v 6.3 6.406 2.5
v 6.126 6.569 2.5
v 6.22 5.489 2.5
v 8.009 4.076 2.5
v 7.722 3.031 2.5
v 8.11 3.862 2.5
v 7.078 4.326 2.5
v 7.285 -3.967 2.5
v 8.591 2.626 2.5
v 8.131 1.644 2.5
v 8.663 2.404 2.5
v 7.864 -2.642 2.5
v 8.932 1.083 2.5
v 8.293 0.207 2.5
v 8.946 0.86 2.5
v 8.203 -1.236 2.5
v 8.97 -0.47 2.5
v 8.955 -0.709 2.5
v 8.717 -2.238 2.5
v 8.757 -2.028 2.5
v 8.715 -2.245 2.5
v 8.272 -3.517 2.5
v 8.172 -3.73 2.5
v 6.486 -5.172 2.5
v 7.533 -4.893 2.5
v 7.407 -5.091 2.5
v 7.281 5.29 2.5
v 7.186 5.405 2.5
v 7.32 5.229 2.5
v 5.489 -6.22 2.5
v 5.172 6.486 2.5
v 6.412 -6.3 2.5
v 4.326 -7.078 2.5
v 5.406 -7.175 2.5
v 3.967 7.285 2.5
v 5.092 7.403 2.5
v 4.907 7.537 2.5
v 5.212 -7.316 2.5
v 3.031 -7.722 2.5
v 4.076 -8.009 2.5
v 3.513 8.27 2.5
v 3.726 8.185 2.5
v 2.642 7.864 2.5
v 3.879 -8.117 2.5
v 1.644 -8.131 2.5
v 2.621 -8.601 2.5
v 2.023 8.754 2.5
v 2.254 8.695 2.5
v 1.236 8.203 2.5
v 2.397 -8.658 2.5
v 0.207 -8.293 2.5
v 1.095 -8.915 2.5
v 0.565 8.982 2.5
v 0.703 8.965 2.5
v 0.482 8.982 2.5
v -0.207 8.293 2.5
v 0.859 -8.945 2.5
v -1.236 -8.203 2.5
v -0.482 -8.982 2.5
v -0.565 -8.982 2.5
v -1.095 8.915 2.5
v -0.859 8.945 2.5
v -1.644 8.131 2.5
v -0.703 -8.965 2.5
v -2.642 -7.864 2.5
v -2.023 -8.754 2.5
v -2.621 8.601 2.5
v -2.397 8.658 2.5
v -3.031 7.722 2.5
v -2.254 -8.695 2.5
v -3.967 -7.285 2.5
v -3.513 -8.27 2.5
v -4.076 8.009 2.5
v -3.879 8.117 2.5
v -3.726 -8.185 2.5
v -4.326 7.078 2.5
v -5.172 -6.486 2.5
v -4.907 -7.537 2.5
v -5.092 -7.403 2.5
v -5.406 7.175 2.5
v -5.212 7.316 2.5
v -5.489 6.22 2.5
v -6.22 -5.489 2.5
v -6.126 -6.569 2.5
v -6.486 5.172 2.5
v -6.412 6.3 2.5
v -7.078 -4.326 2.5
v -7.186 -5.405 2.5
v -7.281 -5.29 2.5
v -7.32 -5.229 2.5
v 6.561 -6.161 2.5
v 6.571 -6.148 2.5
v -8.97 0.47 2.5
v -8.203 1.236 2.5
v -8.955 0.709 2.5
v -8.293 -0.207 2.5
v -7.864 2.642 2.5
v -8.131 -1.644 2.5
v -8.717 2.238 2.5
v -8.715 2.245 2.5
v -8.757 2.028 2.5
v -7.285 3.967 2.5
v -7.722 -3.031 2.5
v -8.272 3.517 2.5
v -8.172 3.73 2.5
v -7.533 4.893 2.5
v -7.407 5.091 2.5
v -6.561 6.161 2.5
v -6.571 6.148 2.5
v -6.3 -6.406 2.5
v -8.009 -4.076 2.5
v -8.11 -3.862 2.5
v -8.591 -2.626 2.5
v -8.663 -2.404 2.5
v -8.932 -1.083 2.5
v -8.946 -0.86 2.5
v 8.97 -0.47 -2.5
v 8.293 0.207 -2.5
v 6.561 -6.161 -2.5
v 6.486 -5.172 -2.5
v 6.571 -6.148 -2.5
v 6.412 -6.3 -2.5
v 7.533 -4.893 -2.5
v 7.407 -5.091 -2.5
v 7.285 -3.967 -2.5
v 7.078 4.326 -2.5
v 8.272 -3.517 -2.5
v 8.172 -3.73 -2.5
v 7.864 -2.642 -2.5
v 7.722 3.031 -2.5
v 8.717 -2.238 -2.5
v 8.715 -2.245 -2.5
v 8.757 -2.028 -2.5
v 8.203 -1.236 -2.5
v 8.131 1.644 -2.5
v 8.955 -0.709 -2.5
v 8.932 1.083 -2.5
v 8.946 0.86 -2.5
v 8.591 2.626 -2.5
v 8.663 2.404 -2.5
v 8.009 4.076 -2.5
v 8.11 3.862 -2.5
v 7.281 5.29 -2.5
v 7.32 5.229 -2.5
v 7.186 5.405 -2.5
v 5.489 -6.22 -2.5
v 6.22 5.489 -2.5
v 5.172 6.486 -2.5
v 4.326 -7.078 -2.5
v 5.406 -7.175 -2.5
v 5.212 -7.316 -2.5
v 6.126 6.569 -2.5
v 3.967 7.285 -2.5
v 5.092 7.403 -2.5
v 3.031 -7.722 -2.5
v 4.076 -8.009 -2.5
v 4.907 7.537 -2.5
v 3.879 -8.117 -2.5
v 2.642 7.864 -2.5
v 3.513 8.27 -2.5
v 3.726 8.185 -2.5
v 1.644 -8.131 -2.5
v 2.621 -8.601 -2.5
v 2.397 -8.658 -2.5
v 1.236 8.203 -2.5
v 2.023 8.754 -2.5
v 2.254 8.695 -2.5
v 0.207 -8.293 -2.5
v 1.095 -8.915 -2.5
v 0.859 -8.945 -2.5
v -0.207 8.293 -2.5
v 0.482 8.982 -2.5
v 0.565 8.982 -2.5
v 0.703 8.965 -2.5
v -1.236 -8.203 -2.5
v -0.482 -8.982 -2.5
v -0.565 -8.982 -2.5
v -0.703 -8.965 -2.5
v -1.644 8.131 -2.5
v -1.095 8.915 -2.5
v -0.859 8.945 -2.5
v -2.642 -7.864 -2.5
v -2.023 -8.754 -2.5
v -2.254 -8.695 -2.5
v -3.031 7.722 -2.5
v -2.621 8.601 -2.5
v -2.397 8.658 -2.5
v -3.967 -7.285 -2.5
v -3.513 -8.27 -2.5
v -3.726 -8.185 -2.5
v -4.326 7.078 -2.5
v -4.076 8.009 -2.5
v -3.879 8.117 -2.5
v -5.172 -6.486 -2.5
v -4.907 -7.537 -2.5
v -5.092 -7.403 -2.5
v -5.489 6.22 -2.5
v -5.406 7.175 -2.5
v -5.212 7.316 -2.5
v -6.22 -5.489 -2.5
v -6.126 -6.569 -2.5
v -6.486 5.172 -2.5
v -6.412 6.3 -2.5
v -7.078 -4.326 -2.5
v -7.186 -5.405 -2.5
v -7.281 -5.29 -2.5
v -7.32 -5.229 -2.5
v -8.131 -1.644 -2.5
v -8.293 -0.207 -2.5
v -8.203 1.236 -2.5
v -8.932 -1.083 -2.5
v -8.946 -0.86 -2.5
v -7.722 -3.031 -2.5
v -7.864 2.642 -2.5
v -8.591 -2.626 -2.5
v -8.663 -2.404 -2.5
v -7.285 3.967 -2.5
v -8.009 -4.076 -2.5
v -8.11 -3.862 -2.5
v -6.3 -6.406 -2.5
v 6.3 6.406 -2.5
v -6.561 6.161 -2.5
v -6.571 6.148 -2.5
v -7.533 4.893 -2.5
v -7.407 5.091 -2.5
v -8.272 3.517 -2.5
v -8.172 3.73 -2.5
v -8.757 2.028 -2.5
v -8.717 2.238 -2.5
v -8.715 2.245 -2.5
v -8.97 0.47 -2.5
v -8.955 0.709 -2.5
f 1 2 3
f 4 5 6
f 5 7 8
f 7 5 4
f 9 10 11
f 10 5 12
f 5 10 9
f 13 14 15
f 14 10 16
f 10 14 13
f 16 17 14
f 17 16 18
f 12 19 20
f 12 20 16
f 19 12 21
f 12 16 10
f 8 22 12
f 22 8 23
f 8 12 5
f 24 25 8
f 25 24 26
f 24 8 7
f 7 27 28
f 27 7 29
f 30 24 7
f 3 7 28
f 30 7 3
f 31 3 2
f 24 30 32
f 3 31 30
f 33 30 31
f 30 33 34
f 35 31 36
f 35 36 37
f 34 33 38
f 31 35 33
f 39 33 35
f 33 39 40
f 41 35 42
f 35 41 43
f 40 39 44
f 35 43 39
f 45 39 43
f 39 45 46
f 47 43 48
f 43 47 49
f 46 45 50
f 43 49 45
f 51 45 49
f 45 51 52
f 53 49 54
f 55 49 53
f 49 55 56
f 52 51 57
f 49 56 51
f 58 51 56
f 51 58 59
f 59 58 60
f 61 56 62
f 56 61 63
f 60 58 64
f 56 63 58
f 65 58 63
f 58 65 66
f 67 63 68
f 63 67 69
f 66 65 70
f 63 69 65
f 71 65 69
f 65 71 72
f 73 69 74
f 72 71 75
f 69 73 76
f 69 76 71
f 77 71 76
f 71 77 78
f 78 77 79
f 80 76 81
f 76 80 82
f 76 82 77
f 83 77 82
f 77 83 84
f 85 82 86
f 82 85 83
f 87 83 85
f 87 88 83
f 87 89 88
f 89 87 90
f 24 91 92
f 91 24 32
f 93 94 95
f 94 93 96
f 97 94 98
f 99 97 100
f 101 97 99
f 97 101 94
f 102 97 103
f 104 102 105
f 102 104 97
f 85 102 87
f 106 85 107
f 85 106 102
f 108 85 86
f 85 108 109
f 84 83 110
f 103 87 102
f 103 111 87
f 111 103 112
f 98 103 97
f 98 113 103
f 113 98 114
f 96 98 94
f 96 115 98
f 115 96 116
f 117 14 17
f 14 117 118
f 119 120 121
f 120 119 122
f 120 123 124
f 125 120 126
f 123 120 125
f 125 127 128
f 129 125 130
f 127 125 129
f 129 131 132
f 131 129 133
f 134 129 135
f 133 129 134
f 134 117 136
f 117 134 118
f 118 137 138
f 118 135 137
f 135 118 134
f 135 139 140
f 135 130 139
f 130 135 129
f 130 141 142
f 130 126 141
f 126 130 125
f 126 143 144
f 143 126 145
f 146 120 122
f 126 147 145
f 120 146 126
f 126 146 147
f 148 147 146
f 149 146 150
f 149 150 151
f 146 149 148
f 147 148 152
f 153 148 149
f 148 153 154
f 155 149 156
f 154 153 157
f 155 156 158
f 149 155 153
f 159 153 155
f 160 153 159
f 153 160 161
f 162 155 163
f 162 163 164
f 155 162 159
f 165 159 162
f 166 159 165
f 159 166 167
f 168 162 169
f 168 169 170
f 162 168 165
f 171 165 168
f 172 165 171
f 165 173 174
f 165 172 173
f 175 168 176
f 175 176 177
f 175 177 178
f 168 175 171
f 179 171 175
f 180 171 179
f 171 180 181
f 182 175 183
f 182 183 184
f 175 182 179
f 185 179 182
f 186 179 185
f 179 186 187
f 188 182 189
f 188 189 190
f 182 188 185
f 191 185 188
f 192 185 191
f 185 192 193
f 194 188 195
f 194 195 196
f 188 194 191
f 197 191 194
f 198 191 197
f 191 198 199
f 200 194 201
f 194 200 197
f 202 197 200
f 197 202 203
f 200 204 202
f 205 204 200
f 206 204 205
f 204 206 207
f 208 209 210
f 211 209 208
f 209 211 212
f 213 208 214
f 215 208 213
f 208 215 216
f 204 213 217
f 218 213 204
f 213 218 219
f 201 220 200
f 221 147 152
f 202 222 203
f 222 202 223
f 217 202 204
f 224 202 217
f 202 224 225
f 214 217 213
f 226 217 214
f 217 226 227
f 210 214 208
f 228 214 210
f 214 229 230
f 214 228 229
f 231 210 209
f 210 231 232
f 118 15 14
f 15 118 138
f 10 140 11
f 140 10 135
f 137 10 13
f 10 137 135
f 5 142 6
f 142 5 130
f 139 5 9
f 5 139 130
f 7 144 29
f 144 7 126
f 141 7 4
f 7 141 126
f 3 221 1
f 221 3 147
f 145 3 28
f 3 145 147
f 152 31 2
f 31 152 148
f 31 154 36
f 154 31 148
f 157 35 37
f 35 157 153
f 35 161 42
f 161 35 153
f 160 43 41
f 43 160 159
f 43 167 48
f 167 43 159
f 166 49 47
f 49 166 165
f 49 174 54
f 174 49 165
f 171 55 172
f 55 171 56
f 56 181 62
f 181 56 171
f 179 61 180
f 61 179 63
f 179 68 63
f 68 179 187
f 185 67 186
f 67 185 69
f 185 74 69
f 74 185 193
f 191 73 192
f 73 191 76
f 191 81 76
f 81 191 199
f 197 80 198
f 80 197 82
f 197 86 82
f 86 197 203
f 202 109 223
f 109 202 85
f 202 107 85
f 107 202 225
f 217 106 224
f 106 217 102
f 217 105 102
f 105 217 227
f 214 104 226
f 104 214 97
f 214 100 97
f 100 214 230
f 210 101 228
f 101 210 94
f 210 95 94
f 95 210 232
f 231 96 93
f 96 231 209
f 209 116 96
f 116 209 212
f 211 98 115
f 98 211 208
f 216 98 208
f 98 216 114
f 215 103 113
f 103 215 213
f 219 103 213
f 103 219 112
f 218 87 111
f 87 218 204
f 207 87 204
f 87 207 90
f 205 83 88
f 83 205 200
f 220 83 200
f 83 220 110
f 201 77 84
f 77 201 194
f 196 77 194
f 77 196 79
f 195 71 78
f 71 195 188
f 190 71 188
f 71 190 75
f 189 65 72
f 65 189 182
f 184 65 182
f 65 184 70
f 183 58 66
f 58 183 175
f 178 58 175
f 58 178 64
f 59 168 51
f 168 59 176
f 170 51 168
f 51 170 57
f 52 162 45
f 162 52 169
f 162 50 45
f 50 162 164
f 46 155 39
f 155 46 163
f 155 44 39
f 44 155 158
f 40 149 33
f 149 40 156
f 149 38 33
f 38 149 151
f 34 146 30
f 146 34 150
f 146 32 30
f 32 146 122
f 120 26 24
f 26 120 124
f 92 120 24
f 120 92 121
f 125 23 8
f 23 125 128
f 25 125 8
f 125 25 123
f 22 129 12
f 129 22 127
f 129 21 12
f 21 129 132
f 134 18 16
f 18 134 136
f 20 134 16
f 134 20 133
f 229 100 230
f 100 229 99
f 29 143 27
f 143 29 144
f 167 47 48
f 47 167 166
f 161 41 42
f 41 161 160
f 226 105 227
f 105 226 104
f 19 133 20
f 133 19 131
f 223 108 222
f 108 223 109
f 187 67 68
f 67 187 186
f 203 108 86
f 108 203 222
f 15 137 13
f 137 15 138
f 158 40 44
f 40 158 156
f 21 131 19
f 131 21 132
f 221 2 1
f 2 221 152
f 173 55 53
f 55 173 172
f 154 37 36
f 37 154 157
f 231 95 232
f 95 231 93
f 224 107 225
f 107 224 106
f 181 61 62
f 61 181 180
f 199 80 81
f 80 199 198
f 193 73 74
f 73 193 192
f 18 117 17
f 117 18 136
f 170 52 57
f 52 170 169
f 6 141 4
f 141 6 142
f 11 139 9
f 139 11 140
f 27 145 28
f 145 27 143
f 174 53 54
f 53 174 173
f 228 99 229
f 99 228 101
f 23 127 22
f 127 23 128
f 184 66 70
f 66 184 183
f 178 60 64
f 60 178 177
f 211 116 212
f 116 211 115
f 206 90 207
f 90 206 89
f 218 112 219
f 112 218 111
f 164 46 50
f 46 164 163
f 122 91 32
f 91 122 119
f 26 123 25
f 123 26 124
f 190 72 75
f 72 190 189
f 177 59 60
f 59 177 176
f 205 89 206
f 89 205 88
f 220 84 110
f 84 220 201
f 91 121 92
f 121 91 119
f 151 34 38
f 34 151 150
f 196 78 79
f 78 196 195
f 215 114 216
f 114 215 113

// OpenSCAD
$fn = 50;


difference() {
	union() {
		translate(v = [0, 0, -2.5000000000]) {
			cylinder(h = 5, r = 9.0000000000);
		}
	}
	union() {
		#rotate(a = [0, 0, 0.0000000000]) {
			translate(v = [9.5000000000, 0, 0]) {
				translate(v = [-0.5000000000, -0.5000000000, -2.5000000000]) {
					rotate(a = [0, 0, 45]) {
						cube(size = [1, 1, 5]);
					}
				}
			}
		}
		#rotate(a = [0, 0, 10.0000000000]) {
			translate(v = [9.5000000000, 0, 0]) {
				translate(v = [-0.5000000000, -0.5000000000, -2.5000000000]) {
					rotate(a = [0, 0, 45]) {
						cube(size = [1, 1, 5]);
					}
				}
			}
		}
		#rotate(a = [0, 0, 20.0000000000]) {
			translate(v = [9.5000000000, 0, 0]) {
				translate(v = [-0.5000000000, -0.5000000000, -2.5000000000]) {
					rotate(a = [0, 0, 45]) {
						cube(size = [1, 1, 5]);
					}
				}
			}
		}
		#rotate(a = [0, 0, 30.0000000000]) {
			translate(v = [9.5000000000, 0, 0]) {
				translate(v = [-0.5000000000, -0.5000000000, -2.5000000000]) {
					rotate(a = [0, 0, 45]) {
						cube(size = [1, 1, 5]);
					}
				}
			}
		}
		#rotate(a = [0, 0, 40.0000000000]) {
			translate(v = [9.5000000000, 0, 0]) {
				translate(v = [-0.5000000000, -0.5000000000, -2.5000000000]) {
					rotate(a = [0, 0, 45]) {
						cube(size = [1, 1, 5]);
					}
				}
			}
		}
		#rotate(a = [0, 0, 50.0000000000]) {
			translate(v = [9.5000000000, 0, 0]) {
				translate(v = [-0.5000000000, -0.5000000000, -2.5000000000]) {
					rotate(a = [0, 0, 45]) {
						cube(size = [1, 1, 5]);
					}
				}
			}
		}
		#rotate(a = [0, 0, 60.0000000000]) {
			translate(v = [9.5000000000, 0, 0]) {
				translate(v = [-0.5000000000, -0.5000000000, -2.5000000000]) {
					rotate(a = [0, 0, 45]) {
						cube(size = [1, 1, 5]);
					}
				}
			}
		}
		#rotate(a = [0, 0, 70.0000000000]) {
			translate(v = [9.5000000000, 0, 0]) {
				translate(v = [-0.5000000000, -0.5000000000, -2.5000000000]) {
					rotate(a = [0, 0, 45]) {
						cube(size = [1, 1, 5]);
					}
				}
			}
		}
		#rotate(a = [0, 0, 80.0000000000]) {
			translate(v = [9.5000000000, 0, 0]) {
				translate(v = [-0.5000000000, -0.5000000000, -2.5000000000]) {
					rotate(a = [0, 0, 45]) {
						cube(size = [1, 1, 5]);
					}
				}
			}
		}
		#rotate(a = [0, 0, 90.0000000000]) {
			translate(v = [9.5000000000, 0, 0]) {
				translate(v = [-0.5000000000, -0.5000000000, -2.5000000000]) {
					rotate(a = [0, 0, 45]) {
						cube(size = [1, 1, 5]);
					}
				}
			}
		}
		#rotate(a = [0, 0, 100.0000000000]) {
			translate(v = [9.5000000000, 0, 0]) {
				translate(v = [-0.5000000000, -0.5000000000, -2.5000000000]) {
					rotate(a = [0, 0, 45]) {
						cube(size = [1, 1, 5]);
					}
				}
			}
		}
		#rotate(a = [0, 0, 110.0000000000]) {
			translate(v = [9.5000000000, 0, 0]) {
				translate(v = [-0.5000000000, -0.5000000000, -2.5000000000]) {
					rotate(a = [0, 0, 45]) {
						cube(size = [1, 1, 5]);
					}
				}
			}
		}
		#rotate(a = [0, 0, 120.0000000000]) {
			translate(v = [9.5000000000, 0, 0]) {
				translate(v = [-0.5000000000, -0.5000000000, -2.5000000000]) {
					rotate(a = [0, 0, 45]) {
						cube(size = [1, 1, 5]);
					}
				}
			}
		}
		#rotate(a = [0, 0, 130.0000000000]) {
			translate(v = [9.5000000000, 0, 0]) {
				translate(v = [-0.5000000000, -0.5000000000, -2.5000000000]) {
					rotate(a = [0, 0, 45]) {
						cube(size = [1, 1, 5]);
					}
				}
			}
		}
		#rotate(a = [0, 0, 140.0000000000]) {
			translate(v = [9.5000000000, 0, 0]) {
				translate(v = [-0.5000000000, -0.5000000000, -2.5000000000]) {
					rotate(a = [0, 0, 45]) {
						cube(size = [1, 1, 5]);
					}
				}
			}
		}
		#rotate(a = [0, 0, 150.0000000000]) {
			translate(v = [9.5000000000, 0, 0]) {
				translate(v = [-0.5000000000, -0.5000000000, -2.5000000000]) {
					rotate(a = [0, 0, 45]) {
						cube(size = [1, 1, 5]);
					}
				}
			}
		}
		#rotate(a = [0, 0, 160.0000000000]) {
			translate(v = [9.5000000000, 0, 0]) {
				translate(v = [-0.5000000000, -0.5000000000, -2.5000000000]) {
					rotate(a = [0, 0, 45]) {
						cube(size = [1, 1, 5]);
					}
				}
			}
		}
		#rotate(a = [0, 0, 170.0000000000]) {
			translate(v = [9.5000000000, 0, 0]) {
				translate(v = [-0.5000000000, -0.5000000000, -2.5000000000]) {
					rotate(a = [0, 0, 45]) {
						cube(size = [1, 1, 5]);
					}
				}
			}
		}
		#rotate(a = [0, 0, 180.0000000000]) {
			translate(v = [9.5000000000, 0, 0]) {
				translate(v = [-0.5000000000, -0.5000000000, -2.5000000000]) {
					rotate(a = [0, 0, 45]) {
						cube(size = [1, 1, 5]);
					}
				}
			}
		}
		#rotate(a = [0, 0, 190.0000000000]) {
			translate(v = [9.5000000000, 0, 0]) {
				translate(v = [-0.5000000000, -0.5000000000, -2.5000000000]) {
					rotate(a = [0, 0, 45]) {
						cube(size = [1, 1, 5]);
					}
				}
			}
		}
		#rotate(a = [0, 0, 200.0000000000]) {
			translate(v = [9.5000000000, 0, 0]) {
				translate(v = [-0.5000000000, -0.5000000000, -2.5000000000]) {
					rotate(a = [0, 0, 45]) {
						cube(size = [1, 1, 5]);
					}
				}
			}
		}
		#rotate(a = [0, 0, 210.0000000000]) {
			translate(v = [9.5000000000, 0, 0]) {
				translate(v = [-0.5000000000, -0.5000000000, -2.5000000000]) {
					rotate(a = [0, 0, 45]) {
						cube(size = [1, 1, 5]);
					}
				}
			}
		}
		#rotate(a = [0, 0, 220.0000000000]) {
			translate(v = [9.5000000000, 0, 0]) {
				translate(v = [-0.5000000000, -0.5000000000, -2.5000000000]) {
					rotate(a = [0, 0, 45]) {
						cube(size = [1, 1, 5]);
					}
				}
			}
		}
		#rotate(a = [0, 0, 230.0000000000]) {
			translate(v = [9.5000000000, 0, 0]) {
				translate(v = [-0.5000000000, -0.5000000000, -2.5000000000]) {
					rotate(a = [0, 0, 45]) {
						cube(size = [1, 1, 5]);
					}
				}
			}
		}
		#rotate(a = [0, 0, 240.0000000000]) {
			translate(v = [9.5000000000, 0, 0]) {
				translate(v = [-0.5000000000, -0.5000000000, -2.5000000000]) {
					rotate(a = [0, 0, 45]) {
						cube(size = [1, 1, 5]);
					}
				}
			}
		}
		#rotate(a = [0, 0, 250.0000000000]) {
			translate(v = [9.5000000000, 0, 0]) {
				translate(v = [-0.5000000000, -0.5000000000, -2.5000000000]) {
					rotate(a = [0, 0, 45]) {
						cube(size = [1, 1, 5]);
					}
				}
			}
		}
		#rotate(a = [0, 0, 260.0000000000]) {
			translate(v = [9.5000000000, 0, 0]) {
				translate(v = [-0.5000000000, -0.5000000000, -2.5000000000]) {
					rotate(a = [0, 0, 45]) {
						cube(size = [1, 1, 5]);
					}
				}
			}
		}
		#rotate(a = [0, 0, 270.0000000000]) {
			translate(v = [9.5000000000, 0, 0]) {
				translate(v = [-0.5000000000, -0.5000000000, -2.5000000000]) {
					rotate(a = [0, 0, 45]) {
						cube(size = [1, 1, 5]);
					}
				}
			}
		}
		#rotate(a = [0, 0, 280.0000000000]) {
			translate(v = [9.5000000000, 0, 0]) {
				translate(v = [-0.5000000000, -0.5000000000, -2.5000000000]) {
					rotate(a = [0, 0, 45]) {
						cube(size = [1, 1, 5]);
					}
				}
			}
		}
		#rotate(a = [0, 0, 290.0000000000]) {
			translate(v = [9.5000000000, 0, 0]) {
				translate(v = [-0.5000000000, -0.5000000000, -2.5000000000]) {
					rotate(a = [0, 0, 45]) {
						cube(size = [1, 1, 5]);
					}
				}
			}
		}
		#rotate(a = [0, 0, 300.0000000000]) {
			translate(v = [9.5000000000, 0, 0]) {
				translate(v = [-0.5000000000, -0.5000000000, -2.5000000000]) {
					rotate(a = [0, 0, 45]) {
						cube(size = [1, 1, 5]);
					}
				}
			}
		}
		#rotate(a = [0, 0, 310.0000000000]) {
			translate(v = [9.5000000000, 0, 0]) {
				translate(v = [-0.5000000000, -0.5000000000, -2.5000000000]) {
					rotate(a = [0, 0, 45]) {
						cube(size = [1, 1, 5]);
					}
				}
			}
		}
		#rotate(a = [0, 0, 320.0000000000]) {
			translate(v = [9.5000000000, 0, 0]) {
				translate(v = [-0.5000000000, -0.5000000000, -2.5000000000]) {
					rotate(a = [0, 0, 45]) {
						cube(size = [1, 1, 5]);
					}
				}
			}
		}
		#rotate(a = [0, 0, 330.0000000000]) {
			translate(v = [9.5000000000, 0, 0]) {
				translate(v = [-0.5000000000, -0.5000000000, -2.5000000000]) {
					rotate(a = [0, 0, 45]) {
						cube(size = [1, 1, 5]);
					}
				}
			}
		}
		#rotate(a = [0, 0, 340.0000000000]) {
			translate(v = [9.5000000000, 0, 0]) {
				translate(v = [-0.5000000000, -0.5000000000, -2.5000000000]) {
					rotate(a = [0, 0, 45]) {
						cube(size = [1, 1, 5]);
					}
				}
			}
		}
		#rotate(a = [0, 0, 350.0000000000]) {
			translate(v = [9.5000000000, 0, 0]) {
				translate(v = [-0.5000000000, -0.5000000000, -2.5000000000]) {
					rotate(a = [0, 0, 45]) {
						cube(size = [1, 1, 5]);
					}
				}
			}
		}
	}
}
